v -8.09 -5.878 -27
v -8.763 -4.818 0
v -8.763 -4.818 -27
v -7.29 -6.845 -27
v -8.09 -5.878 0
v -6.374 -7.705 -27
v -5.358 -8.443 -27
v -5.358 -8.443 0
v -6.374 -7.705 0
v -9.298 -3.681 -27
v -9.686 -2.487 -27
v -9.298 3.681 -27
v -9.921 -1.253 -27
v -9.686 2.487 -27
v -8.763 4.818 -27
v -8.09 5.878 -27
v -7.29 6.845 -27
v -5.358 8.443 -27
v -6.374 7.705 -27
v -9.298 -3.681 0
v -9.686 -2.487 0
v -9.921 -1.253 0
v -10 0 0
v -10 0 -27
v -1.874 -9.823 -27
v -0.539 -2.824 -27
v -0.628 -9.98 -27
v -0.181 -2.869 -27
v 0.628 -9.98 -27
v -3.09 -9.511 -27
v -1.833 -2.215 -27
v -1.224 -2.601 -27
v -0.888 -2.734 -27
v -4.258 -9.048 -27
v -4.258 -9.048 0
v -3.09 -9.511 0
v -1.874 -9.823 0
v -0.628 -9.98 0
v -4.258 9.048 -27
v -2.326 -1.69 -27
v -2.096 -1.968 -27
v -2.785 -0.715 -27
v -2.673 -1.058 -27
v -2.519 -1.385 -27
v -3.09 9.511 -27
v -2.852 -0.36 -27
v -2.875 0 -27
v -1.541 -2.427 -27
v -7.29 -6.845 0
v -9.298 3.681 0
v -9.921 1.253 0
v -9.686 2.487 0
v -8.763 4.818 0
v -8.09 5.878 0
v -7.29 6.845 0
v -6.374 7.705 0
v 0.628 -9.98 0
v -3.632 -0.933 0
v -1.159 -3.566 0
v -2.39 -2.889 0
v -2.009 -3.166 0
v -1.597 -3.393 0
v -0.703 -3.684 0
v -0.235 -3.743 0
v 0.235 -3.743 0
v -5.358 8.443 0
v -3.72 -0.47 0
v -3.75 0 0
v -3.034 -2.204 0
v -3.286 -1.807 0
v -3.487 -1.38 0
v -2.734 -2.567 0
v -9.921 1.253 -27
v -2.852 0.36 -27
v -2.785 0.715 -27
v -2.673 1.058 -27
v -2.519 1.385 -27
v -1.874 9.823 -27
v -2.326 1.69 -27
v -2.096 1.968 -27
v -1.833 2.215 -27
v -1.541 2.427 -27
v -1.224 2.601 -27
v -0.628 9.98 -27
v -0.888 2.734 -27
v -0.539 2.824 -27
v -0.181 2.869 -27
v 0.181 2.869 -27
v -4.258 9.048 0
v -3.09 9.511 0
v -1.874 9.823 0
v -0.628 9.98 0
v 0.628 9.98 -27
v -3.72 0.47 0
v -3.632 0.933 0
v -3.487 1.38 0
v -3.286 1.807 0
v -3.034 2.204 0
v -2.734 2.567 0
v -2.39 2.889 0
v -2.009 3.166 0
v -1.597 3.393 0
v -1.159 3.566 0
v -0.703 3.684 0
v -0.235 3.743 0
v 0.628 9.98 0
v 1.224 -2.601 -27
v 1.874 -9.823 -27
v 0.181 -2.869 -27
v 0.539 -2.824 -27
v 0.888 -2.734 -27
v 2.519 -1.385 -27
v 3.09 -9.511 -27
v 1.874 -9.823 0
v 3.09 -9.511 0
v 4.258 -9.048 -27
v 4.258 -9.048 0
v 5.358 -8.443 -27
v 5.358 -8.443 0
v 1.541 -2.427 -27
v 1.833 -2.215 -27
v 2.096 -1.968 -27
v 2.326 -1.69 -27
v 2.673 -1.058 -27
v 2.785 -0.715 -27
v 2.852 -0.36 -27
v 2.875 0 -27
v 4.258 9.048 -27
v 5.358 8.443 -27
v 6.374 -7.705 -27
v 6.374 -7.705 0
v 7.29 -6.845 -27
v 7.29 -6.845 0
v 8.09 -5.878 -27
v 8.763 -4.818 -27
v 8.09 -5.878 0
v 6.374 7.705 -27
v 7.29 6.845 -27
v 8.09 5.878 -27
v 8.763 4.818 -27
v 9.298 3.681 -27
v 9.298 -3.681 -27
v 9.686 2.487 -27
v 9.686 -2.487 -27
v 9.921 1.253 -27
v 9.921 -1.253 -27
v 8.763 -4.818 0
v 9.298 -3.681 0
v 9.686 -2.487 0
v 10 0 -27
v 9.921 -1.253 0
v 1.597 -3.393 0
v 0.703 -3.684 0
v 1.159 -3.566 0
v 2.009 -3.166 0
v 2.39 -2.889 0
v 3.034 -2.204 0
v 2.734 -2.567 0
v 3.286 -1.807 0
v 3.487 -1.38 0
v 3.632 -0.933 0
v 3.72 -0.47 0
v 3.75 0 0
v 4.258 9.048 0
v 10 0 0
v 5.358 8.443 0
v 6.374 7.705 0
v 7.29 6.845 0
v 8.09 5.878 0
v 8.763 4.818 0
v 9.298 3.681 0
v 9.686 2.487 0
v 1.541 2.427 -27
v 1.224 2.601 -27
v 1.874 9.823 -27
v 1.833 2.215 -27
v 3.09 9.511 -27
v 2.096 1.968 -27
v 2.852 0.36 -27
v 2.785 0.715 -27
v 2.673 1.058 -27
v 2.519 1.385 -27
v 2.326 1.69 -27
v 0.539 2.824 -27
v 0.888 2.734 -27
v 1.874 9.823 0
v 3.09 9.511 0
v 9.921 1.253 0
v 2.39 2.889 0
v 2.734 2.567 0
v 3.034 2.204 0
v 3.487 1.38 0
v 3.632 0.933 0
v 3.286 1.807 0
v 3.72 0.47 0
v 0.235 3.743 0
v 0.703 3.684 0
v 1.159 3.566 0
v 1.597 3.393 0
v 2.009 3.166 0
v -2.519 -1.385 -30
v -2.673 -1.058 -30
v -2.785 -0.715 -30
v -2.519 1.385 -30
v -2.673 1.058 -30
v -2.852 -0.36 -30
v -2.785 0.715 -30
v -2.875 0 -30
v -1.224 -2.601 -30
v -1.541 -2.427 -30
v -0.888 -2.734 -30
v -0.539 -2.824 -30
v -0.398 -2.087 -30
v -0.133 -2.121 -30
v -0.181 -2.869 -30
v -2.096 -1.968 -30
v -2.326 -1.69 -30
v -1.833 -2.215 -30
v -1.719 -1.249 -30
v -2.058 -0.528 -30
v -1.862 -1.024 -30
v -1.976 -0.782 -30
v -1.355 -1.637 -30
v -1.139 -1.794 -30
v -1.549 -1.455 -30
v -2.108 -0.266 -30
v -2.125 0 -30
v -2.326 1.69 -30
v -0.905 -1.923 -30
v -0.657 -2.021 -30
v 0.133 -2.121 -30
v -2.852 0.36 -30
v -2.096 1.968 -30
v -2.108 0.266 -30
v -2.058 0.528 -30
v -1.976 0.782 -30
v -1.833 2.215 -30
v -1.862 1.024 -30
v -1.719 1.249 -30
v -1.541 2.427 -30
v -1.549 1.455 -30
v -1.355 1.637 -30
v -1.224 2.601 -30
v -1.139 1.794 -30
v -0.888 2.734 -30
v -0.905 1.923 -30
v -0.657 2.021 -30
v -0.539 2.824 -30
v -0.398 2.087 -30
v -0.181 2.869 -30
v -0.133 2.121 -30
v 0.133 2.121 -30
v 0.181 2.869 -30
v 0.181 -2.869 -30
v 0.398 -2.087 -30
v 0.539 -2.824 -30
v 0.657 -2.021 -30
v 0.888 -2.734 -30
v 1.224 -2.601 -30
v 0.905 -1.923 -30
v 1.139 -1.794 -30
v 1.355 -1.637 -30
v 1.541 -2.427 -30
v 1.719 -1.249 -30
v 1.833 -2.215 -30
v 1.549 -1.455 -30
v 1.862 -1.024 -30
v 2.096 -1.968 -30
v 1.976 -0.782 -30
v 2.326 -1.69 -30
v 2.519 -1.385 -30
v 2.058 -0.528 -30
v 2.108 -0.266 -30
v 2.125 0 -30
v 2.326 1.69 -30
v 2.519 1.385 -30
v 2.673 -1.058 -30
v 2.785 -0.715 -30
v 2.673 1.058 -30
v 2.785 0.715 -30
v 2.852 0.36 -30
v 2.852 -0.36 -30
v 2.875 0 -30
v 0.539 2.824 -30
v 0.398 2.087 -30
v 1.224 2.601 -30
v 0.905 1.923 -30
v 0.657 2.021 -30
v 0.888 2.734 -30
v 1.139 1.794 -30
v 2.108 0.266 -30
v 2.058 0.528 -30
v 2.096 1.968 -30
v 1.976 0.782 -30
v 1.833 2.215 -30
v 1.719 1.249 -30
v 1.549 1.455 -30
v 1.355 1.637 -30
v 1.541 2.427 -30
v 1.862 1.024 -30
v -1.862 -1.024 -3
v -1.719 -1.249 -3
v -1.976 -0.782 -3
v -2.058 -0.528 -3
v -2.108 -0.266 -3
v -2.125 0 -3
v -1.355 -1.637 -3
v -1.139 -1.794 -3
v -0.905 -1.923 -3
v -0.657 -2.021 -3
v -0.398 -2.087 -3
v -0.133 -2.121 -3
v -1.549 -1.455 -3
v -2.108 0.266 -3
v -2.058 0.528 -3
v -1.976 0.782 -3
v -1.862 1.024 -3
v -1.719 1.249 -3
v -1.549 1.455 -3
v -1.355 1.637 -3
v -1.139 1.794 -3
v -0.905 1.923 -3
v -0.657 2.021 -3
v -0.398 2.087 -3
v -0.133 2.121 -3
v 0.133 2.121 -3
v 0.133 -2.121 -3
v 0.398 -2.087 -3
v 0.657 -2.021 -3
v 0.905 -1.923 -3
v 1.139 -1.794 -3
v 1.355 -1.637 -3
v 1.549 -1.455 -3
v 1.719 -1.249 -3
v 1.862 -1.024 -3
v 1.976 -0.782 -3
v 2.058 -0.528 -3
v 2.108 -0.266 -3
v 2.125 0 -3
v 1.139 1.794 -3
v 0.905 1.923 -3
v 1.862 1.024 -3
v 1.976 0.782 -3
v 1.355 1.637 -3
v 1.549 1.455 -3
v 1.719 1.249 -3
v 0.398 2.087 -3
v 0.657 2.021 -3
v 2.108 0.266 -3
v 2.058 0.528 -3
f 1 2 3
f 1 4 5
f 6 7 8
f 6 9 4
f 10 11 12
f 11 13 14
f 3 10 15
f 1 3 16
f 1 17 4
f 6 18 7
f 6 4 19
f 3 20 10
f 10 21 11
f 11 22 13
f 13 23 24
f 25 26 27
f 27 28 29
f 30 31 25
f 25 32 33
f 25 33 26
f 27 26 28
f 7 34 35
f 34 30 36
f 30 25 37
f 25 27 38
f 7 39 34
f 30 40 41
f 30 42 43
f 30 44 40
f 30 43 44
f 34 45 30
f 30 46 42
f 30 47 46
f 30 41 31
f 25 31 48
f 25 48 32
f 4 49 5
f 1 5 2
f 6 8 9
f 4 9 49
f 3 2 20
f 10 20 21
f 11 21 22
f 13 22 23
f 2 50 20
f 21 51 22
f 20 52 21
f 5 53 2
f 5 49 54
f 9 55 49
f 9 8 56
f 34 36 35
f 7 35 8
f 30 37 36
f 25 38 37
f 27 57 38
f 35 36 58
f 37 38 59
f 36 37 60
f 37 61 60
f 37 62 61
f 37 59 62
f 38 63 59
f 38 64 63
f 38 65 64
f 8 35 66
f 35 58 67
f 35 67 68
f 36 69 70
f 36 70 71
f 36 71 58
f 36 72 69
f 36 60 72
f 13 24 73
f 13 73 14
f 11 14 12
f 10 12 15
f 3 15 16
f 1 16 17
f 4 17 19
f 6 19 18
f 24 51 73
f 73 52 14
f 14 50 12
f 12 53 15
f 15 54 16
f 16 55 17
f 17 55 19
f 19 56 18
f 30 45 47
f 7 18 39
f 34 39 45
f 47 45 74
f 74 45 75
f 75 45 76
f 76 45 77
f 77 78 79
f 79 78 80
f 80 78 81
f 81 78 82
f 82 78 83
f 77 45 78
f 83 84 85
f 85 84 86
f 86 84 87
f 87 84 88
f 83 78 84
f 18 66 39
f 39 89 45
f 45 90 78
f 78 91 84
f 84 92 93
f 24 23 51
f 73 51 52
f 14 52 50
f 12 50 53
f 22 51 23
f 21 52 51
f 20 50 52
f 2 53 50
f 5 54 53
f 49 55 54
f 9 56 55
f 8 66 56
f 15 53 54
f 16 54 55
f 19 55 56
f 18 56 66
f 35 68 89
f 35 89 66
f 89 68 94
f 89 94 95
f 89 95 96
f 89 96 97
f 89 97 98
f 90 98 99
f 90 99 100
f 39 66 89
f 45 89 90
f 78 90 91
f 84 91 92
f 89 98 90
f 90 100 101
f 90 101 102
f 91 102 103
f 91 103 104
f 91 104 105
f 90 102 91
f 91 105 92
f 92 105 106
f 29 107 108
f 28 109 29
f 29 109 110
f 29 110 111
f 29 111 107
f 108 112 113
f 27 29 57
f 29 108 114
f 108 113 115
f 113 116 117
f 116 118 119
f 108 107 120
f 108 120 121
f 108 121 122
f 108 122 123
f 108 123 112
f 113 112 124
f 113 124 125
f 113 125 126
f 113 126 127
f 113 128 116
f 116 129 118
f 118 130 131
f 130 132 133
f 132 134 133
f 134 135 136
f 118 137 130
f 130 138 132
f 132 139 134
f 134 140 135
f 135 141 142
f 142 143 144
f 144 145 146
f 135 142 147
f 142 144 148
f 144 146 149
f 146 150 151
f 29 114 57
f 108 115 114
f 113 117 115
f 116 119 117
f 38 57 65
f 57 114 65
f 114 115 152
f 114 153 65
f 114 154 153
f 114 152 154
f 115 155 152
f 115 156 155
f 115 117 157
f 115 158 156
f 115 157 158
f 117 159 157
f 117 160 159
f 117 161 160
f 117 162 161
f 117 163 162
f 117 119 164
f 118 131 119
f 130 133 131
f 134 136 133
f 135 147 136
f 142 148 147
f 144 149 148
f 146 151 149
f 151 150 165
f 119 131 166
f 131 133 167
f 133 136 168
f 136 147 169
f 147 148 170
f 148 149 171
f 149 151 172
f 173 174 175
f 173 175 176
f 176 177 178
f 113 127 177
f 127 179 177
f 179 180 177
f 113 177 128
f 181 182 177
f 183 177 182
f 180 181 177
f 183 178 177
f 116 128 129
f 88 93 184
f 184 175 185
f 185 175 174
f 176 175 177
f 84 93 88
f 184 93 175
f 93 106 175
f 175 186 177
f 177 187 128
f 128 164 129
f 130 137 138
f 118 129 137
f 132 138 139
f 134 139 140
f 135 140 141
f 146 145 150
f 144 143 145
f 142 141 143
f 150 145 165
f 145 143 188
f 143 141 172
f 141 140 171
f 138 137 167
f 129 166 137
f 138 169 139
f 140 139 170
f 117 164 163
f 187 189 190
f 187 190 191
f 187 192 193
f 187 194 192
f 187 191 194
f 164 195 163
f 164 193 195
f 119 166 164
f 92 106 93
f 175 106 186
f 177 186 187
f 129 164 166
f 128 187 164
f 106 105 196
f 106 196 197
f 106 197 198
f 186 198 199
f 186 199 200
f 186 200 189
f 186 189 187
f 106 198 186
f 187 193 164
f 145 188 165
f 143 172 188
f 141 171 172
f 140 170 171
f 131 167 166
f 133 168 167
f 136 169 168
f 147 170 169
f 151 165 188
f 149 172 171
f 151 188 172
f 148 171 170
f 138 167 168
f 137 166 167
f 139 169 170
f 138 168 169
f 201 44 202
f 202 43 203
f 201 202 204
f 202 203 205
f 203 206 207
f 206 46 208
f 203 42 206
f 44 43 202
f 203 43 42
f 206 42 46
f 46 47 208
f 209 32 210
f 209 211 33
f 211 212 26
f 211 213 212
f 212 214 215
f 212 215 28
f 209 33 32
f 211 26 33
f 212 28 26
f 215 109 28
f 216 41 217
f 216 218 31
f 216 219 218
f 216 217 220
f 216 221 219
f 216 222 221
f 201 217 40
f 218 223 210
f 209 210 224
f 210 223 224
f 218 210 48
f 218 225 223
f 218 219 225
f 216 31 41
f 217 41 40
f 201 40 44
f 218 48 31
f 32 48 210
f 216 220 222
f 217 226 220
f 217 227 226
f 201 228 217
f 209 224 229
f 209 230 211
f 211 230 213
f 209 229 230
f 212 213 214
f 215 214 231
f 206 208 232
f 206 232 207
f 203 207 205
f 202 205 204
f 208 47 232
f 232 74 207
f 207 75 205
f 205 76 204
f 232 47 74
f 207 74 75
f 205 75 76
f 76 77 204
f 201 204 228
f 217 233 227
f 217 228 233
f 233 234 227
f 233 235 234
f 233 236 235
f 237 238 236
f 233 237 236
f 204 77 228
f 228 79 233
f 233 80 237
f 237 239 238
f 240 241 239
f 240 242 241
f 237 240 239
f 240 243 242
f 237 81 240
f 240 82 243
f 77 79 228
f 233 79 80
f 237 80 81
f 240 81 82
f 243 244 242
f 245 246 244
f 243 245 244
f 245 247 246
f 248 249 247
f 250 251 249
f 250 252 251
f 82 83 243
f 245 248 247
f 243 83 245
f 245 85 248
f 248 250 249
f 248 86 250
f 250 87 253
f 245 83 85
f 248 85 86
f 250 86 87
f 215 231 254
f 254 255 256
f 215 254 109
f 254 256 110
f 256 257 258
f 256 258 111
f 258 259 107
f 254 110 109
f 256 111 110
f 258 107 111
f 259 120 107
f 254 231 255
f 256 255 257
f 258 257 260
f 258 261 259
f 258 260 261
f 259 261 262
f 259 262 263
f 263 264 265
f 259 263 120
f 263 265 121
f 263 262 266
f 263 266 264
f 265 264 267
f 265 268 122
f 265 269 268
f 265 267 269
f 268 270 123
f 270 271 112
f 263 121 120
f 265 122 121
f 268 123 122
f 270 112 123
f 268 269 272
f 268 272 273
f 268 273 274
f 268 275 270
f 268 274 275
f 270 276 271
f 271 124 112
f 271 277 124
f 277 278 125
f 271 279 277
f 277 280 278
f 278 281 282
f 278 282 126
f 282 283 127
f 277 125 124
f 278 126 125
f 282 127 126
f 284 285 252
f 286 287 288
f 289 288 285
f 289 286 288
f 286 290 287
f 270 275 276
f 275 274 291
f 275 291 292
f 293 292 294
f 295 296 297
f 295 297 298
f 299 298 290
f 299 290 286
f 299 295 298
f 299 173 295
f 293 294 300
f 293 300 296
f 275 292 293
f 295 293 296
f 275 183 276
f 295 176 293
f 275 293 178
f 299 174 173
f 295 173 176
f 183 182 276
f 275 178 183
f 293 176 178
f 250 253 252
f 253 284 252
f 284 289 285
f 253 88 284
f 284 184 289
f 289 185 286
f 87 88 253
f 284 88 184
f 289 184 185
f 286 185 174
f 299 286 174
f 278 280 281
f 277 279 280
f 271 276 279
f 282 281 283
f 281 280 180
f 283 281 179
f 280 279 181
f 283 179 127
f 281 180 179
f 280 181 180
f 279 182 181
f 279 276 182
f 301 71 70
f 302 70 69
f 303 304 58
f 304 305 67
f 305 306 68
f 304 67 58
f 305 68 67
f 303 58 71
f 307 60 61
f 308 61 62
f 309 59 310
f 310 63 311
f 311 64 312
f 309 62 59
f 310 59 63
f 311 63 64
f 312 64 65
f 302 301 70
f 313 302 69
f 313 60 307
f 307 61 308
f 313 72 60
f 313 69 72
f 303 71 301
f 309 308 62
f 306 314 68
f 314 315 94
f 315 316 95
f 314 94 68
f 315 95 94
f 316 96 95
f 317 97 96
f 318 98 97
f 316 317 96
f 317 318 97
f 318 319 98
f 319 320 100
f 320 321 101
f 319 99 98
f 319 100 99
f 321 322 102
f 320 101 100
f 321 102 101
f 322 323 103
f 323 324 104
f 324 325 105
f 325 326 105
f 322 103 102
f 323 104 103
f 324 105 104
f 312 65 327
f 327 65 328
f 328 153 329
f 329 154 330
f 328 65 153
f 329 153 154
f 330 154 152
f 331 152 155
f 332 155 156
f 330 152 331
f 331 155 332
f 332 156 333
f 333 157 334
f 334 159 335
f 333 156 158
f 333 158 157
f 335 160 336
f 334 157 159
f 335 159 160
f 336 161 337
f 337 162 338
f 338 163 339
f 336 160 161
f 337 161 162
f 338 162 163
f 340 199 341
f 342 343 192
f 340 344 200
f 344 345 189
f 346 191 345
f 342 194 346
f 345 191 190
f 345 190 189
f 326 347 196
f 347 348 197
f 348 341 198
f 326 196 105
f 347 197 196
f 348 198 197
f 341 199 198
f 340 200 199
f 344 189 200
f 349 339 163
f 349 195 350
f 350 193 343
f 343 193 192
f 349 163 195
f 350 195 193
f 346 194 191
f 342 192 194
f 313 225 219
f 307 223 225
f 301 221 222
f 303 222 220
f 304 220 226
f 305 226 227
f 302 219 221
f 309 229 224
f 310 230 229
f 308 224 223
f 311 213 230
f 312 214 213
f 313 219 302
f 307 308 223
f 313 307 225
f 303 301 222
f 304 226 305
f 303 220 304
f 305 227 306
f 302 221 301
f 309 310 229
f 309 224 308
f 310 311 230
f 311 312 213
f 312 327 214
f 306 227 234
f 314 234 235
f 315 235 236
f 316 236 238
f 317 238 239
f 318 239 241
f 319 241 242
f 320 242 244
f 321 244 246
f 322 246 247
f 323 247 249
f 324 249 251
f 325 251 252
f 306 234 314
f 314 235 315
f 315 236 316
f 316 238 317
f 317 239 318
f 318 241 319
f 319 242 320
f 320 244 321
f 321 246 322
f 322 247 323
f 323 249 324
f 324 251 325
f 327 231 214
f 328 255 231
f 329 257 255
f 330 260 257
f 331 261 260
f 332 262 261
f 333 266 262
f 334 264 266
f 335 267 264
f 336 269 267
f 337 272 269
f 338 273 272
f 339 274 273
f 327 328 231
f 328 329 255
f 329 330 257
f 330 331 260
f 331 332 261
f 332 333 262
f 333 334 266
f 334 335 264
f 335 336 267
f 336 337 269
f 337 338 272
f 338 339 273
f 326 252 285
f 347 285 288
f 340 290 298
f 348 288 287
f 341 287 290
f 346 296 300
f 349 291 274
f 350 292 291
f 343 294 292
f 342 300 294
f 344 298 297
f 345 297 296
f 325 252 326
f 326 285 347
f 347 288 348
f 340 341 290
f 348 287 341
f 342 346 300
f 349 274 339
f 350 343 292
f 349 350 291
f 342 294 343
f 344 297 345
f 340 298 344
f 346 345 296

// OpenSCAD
$fn = 50;

difference() {
	union() {
		translate(v = [0, 0, -27.0]) {
			cylinder(h = 27, r = 10.0);
		}
		#translate(v = [0, 0, -30.0]) {
			cylinder(h = 30, r = 2.875);
		}
	}
	union() {
		translate(v = [0, 0, 0]) {
			rotate(a = [0, 0, 0]) {
				difference() {
					union() {
						translate(v = [0, 0, -30.0]) {
							cylinder(h = 30, r = 2.0);
						}
						translate(v = [0, 0, -3]) {
							cylinder(h = 3, r1 = 2.125, r2 = 3.75);
						}
						translate(v = [0, 0, -30.0]) {
							cylinder(h = 30, r = 2.125);
						}
						translate(v = [0, 0, -30.0]) {
							cylinder(h = 30, r = 2.0);
						}
					}
					union();
				}
			}
		}
	}
}
